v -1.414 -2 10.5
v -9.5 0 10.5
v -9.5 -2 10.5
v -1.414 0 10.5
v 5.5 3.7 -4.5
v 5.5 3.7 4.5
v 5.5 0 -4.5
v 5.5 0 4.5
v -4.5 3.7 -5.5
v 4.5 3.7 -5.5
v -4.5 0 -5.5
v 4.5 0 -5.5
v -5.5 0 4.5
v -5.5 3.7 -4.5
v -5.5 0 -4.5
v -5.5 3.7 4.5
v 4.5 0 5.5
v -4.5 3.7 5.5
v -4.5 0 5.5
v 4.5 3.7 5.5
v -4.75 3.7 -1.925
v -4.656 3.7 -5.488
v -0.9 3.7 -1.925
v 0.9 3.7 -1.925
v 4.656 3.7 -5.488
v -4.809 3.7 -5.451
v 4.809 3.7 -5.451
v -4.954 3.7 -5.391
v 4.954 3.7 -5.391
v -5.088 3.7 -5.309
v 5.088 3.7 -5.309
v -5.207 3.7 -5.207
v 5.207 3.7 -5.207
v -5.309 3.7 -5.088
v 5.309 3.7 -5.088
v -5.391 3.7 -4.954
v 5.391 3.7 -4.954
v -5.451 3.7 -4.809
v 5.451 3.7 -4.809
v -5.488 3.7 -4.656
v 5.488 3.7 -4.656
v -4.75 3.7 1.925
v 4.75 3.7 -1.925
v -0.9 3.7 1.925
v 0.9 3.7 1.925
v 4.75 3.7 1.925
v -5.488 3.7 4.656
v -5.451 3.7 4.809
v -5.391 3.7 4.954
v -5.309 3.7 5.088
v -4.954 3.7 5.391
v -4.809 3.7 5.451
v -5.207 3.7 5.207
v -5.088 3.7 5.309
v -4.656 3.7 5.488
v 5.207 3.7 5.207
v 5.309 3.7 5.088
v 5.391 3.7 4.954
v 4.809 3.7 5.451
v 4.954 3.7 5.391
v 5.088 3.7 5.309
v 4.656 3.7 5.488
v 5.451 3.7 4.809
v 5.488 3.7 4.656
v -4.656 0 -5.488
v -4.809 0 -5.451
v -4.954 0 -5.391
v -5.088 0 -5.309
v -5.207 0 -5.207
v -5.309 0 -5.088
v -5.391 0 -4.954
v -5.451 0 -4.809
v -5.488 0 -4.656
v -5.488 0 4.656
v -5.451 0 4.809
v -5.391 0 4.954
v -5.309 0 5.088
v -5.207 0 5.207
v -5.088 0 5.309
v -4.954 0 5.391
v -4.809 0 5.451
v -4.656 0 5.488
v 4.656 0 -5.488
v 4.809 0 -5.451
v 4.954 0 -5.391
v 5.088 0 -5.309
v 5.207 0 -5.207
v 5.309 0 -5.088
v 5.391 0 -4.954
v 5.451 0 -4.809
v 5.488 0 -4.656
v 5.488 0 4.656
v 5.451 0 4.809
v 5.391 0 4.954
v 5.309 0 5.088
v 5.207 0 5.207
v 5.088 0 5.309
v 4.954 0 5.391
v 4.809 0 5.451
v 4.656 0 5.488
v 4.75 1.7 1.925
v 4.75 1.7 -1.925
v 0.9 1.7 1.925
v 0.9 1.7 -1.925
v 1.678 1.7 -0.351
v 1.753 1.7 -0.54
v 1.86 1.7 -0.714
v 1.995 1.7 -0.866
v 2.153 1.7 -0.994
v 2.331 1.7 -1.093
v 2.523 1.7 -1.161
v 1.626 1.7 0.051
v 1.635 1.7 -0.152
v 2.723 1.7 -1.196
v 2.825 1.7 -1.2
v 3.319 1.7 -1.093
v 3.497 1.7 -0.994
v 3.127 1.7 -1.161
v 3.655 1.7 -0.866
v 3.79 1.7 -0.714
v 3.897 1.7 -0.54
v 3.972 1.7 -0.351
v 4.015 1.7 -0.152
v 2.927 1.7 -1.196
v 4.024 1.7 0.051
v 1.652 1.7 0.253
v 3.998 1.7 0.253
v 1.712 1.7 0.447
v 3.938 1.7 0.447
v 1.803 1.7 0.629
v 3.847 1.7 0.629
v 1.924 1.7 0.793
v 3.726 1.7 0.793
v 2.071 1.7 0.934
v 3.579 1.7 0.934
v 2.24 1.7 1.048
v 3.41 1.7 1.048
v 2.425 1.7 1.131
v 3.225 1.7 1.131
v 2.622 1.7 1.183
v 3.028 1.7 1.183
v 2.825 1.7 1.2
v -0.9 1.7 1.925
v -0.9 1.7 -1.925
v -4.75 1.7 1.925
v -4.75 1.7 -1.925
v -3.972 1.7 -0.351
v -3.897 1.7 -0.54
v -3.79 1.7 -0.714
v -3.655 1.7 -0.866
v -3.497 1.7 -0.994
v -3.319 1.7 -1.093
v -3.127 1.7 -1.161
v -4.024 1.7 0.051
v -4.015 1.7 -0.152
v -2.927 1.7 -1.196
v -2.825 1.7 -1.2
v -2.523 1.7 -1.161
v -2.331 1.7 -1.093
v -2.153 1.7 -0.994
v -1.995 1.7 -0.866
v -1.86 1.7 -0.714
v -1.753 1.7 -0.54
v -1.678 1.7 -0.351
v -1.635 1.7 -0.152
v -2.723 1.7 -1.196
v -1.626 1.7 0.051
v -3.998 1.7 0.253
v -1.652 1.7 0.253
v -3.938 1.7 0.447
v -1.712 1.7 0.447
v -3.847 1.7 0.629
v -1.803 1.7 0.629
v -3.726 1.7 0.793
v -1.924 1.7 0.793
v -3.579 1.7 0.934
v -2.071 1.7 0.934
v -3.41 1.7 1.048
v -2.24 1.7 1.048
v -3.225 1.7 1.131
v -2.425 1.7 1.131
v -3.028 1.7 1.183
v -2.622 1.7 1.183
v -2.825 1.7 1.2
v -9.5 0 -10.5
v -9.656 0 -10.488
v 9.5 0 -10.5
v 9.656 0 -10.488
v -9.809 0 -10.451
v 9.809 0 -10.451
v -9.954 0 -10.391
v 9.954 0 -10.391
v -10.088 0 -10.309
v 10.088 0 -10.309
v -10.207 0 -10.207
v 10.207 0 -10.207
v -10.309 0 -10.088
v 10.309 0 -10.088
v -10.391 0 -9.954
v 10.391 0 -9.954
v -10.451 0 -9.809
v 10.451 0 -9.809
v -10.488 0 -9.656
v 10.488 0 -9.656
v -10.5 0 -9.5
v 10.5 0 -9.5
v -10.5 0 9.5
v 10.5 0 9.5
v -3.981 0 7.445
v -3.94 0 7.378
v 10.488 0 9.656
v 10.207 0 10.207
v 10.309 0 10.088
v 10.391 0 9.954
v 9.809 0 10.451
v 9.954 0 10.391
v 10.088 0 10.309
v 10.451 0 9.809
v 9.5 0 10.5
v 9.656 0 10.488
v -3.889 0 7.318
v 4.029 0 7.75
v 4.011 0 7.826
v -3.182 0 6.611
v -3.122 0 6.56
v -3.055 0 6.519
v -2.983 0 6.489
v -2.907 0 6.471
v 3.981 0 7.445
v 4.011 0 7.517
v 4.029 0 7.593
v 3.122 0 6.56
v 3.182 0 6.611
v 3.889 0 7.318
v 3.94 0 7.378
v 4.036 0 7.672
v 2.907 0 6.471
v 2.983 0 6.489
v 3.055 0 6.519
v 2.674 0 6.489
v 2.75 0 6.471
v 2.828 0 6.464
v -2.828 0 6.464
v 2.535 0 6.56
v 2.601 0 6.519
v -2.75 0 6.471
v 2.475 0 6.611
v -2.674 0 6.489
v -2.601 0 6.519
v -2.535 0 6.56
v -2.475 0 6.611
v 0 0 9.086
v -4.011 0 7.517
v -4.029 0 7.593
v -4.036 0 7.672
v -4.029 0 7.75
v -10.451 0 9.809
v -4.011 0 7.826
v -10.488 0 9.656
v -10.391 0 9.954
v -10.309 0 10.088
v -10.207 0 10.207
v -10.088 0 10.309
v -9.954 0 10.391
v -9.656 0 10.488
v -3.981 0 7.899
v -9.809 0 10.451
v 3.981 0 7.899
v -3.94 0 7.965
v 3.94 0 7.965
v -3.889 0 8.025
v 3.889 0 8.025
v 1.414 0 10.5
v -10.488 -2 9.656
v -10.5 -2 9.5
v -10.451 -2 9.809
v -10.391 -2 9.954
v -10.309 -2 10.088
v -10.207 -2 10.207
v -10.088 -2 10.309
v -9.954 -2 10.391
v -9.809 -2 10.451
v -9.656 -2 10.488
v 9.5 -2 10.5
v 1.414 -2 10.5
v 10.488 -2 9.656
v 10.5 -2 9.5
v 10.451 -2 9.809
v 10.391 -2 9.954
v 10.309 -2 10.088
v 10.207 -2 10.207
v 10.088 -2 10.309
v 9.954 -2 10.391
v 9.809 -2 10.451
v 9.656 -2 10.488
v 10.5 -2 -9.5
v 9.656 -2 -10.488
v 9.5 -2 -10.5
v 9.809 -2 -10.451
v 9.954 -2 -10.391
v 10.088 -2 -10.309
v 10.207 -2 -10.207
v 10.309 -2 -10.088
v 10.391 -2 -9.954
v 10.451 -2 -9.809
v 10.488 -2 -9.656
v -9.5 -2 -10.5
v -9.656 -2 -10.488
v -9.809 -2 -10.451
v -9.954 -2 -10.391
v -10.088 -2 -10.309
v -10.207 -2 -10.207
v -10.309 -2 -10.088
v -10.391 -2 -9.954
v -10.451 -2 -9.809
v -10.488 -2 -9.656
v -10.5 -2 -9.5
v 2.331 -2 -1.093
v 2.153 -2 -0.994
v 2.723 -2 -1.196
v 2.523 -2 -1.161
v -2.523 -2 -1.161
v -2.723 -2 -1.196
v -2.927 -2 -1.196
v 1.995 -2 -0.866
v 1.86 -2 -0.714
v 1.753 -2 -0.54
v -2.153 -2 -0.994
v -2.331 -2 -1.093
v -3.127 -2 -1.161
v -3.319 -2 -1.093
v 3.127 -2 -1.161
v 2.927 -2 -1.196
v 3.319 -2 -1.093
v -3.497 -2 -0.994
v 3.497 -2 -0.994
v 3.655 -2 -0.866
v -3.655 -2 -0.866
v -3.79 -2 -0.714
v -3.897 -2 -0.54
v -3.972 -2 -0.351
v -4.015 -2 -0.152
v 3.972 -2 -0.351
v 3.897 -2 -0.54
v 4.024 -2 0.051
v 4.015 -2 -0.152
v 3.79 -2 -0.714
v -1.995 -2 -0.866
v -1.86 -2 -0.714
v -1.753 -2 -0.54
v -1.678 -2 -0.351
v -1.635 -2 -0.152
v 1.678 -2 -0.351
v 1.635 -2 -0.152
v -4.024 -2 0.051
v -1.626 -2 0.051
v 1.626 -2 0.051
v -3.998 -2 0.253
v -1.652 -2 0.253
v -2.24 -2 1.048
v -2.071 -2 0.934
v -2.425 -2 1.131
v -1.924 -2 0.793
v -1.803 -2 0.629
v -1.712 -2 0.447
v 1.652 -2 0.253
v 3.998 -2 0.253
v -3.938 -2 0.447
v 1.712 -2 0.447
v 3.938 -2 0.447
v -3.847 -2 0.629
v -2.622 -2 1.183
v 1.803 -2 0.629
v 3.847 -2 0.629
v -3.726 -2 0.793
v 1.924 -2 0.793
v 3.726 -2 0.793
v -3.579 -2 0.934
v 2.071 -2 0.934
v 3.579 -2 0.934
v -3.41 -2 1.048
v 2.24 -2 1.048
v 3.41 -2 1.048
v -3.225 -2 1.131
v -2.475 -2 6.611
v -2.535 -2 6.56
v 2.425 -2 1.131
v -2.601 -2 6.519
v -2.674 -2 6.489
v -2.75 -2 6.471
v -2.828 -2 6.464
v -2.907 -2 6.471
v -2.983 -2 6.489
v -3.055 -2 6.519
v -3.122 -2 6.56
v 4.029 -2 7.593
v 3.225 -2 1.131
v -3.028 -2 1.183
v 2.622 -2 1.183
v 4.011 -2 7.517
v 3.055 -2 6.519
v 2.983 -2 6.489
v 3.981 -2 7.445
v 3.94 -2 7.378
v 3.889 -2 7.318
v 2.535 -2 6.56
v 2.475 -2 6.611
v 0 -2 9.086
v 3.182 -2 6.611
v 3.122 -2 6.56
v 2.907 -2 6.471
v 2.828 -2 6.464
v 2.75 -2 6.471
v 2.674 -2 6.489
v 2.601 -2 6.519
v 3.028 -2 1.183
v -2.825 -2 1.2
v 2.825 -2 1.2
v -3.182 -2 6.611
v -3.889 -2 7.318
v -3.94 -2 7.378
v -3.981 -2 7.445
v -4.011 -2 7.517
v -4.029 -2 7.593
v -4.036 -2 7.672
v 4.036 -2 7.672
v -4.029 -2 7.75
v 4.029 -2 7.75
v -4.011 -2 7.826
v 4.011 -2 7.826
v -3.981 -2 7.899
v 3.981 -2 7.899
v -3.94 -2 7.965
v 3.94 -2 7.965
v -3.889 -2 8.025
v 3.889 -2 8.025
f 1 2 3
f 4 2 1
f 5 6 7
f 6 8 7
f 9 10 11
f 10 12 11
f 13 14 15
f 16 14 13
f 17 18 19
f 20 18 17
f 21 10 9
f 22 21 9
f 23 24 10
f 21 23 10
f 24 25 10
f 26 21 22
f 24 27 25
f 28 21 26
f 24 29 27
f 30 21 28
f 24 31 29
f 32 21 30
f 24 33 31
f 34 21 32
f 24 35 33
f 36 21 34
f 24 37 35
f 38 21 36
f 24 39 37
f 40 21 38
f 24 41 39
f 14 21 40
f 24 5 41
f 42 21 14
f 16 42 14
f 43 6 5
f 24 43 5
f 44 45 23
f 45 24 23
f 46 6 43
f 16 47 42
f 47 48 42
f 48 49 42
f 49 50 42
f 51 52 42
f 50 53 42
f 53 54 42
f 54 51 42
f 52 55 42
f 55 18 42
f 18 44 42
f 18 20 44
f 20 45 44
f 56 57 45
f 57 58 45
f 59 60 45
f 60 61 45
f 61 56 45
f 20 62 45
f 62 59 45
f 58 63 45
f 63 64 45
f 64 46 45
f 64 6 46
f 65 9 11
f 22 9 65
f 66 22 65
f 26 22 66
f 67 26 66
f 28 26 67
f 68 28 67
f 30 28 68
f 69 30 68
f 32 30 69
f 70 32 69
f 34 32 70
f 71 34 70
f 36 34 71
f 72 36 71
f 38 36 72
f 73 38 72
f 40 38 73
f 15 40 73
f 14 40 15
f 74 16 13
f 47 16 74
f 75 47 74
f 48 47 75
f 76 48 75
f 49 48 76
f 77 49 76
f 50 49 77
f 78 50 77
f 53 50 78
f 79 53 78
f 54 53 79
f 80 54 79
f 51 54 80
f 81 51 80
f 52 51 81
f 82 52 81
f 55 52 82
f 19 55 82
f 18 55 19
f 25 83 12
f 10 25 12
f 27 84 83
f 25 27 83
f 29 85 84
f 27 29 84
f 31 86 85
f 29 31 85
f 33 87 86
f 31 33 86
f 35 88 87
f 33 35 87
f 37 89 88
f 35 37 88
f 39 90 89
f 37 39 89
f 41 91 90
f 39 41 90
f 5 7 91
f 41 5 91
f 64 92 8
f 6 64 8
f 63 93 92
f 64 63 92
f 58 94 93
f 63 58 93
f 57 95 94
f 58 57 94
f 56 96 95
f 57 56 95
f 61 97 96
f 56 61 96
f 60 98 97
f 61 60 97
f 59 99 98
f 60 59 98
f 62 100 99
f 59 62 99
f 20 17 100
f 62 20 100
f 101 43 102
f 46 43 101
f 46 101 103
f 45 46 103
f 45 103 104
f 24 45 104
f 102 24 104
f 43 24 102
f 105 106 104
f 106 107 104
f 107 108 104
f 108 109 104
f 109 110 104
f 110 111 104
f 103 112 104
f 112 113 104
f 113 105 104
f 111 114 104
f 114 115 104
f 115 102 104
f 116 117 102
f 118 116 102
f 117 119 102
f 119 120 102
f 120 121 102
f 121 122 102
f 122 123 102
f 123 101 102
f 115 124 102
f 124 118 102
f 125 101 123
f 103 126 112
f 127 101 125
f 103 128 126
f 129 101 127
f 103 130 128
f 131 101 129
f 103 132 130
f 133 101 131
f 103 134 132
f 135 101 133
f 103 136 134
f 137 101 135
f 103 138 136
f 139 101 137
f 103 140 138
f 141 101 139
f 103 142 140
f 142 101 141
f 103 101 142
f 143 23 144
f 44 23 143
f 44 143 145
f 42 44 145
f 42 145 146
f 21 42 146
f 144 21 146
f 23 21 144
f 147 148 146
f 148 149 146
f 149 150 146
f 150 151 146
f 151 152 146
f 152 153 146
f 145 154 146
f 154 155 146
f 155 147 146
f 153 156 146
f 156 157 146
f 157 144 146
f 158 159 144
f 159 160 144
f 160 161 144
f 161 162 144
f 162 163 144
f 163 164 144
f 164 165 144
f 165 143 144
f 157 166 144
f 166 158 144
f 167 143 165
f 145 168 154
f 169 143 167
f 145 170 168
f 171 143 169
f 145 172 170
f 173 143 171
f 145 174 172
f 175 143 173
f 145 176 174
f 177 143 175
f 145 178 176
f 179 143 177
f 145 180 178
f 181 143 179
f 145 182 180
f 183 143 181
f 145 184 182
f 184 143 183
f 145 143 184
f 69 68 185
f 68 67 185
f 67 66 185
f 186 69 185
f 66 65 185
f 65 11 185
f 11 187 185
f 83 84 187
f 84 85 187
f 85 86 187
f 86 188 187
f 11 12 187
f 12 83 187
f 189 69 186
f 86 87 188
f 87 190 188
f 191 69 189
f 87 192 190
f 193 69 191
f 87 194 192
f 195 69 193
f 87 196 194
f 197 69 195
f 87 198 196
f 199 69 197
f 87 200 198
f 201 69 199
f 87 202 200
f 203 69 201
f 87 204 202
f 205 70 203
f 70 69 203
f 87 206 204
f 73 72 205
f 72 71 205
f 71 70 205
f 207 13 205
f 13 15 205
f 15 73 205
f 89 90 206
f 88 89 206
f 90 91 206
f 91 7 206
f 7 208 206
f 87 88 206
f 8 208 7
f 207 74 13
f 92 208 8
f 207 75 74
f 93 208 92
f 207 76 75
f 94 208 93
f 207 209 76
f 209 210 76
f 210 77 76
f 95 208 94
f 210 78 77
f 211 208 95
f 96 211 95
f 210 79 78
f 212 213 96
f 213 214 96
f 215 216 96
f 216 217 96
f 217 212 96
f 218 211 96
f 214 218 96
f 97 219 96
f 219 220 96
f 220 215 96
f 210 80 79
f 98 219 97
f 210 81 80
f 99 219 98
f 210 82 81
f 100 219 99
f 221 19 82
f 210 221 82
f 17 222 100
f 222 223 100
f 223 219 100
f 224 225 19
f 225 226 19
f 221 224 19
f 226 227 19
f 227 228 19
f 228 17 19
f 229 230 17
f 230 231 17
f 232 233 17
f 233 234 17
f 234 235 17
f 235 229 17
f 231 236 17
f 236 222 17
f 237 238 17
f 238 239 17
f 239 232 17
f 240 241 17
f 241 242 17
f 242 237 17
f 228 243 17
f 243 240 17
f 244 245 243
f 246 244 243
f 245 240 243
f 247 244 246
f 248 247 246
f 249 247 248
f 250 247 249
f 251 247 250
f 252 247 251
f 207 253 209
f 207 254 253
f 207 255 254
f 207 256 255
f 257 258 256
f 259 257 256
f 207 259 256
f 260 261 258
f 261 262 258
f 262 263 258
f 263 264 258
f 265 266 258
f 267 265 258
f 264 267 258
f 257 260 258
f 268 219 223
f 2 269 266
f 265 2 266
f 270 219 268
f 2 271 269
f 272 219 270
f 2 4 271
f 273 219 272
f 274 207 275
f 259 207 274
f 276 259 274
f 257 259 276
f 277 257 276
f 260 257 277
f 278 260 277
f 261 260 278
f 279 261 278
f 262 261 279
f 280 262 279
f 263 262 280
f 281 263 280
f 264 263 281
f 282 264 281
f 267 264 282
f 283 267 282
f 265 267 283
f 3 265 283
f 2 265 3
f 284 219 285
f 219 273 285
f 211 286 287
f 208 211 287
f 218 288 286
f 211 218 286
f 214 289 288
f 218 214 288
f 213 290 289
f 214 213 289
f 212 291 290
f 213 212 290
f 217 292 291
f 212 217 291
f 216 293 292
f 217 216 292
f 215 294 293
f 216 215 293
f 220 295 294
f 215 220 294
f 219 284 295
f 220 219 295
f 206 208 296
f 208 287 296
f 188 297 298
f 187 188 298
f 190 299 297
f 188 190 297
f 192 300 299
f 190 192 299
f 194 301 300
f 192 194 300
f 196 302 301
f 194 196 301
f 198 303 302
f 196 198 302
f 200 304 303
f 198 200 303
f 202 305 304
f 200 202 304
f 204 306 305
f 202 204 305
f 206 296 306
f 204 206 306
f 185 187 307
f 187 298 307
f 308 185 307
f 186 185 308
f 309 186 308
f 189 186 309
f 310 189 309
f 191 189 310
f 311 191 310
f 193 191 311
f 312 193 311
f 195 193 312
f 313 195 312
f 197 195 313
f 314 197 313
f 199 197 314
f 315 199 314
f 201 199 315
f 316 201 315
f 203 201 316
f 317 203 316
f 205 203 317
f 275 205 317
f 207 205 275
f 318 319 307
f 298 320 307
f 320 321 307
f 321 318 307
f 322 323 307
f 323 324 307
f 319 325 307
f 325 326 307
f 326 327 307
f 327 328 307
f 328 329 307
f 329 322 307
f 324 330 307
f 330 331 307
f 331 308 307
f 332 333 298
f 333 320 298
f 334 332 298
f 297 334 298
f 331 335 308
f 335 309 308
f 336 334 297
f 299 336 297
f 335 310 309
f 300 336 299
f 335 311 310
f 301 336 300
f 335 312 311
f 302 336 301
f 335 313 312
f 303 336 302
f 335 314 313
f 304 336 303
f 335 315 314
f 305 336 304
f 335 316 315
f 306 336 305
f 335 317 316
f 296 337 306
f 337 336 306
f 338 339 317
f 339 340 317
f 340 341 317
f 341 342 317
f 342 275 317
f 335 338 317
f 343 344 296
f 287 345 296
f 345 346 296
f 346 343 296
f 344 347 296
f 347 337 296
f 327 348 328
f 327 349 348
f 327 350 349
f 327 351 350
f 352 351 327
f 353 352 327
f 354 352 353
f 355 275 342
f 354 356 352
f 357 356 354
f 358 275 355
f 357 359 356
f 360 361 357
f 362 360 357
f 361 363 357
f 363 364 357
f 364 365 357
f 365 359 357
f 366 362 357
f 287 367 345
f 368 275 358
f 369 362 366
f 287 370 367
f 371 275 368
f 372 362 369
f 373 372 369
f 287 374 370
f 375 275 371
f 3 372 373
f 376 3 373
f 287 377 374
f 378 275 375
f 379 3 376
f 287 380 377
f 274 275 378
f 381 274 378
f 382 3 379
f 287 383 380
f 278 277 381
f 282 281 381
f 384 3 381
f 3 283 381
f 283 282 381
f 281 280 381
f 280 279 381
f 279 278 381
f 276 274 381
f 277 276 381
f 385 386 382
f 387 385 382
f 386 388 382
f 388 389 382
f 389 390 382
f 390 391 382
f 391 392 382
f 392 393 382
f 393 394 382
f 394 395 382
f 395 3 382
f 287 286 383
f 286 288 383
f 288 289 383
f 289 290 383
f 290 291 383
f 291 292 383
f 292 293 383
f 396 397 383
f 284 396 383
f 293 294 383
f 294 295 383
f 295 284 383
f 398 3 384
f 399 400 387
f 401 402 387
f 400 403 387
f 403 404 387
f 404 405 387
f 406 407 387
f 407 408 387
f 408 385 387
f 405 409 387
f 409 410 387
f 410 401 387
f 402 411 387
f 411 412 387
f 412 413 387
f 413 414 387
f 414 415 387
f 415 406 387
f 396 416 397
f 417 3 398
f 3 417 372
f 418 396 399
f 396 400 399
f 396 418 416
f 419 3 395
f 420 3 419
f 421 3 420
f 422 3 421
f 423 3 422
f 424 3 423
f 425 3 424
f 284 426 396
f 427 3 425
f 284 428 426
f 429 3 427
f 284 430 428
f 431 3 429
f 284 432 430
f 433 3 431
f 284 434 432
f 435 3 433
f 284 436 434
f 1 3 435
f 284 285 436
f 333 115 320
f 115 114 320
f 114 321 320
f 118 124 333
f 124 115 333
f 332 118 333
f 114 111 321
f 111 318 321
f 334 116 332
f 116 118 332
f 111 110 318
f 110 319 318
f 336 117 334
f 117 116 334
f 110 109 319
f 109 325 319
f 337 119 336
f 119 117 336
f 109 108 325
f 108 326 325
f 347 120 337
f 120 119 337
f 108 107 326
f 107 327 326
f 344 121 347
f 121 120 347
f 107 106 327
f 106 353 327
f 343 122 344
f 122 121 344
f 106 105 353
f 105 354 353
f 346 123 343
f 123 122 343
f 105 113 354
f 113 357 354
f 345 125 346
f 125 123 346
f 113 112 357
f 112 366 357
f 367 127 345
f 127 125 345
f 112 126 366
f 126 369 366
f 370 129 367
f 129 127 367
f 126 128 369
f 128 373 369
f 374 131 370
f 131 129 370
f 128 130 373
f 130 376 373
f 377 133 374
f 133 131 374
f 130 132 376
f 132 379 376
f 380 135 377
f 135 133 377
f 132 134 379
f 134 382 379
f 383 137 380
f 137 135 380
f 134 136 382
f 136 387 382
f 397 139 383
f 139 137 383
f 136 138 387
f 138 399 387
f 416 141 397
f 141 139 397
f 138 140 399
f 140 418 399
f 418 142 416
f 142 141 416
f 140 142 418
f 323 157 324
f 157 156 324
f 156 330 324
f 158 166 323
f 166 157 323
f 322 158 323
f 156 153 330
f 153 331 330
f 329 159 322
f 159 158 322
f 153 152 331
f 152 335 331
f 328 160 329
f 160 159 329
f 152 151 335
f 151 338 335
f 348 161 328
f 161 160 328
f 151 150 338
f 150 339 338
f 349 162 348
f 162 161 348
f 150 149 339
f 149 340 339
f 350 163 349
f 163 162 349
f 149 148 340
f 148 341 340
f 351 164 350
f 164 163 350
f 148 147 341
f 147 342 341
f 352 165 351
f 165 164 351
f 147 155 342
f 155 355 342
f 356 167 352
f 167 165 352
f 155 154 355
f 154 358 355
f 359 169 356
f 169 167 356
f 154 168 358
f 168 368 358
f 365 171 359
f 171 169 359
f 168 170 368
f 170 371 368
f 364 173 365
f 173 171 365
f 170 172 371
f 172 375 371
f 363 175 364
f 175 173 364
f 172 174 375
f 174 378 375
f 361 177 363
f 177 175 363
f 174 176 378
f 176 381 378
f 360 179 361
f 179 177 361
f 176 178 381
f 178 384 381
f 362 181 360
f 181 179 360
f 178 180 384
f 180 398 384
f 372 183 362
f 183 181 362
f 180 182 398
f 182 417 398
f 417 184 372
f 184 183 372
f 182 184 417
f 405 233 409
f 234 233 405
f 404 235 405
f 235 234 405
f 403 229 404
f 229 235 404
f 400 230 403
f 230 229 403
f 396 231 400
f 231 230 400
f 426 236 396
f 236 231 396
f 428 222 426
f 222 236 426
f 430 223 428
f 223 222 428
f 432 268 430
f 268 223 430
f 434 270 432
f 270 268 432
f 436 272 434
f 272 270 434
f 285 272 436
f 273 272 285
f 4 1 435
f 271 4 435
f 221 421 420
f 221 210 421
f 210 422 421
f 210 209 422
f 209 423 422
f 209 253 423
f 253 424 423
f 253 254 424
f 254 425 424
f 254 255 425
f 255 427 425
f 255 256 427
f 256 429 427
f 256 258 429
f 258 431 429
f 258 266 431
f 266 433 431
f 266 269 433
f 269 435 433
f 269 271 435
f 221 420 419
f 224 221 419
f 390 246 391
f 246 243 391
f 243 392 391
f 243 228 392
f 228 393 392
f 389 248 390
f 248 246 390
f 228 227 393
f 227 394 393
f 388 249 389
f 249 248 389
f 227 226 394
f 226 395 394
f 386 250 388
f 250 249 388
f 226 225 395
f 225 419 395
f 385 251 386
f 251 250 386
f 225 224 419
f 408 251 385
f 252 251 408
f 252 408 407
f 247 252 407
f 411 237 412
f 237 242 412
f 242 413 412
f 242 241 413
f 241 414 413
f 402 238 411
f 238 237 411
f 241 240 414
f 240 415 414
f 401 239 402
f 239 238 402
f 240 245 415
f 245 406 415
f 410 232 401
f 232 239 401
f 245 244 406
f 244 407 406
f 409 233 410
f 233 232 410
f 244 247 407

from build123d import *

# Parameters (mm, degrees)
SKETCH1_W           = 11
SKETCH1_H           = 11
BOSS_EXTRUDE1_DEPTH = 3.7
FILLET1_R           = 1
SKETCH2_W           = 3.85
SKETCH2_H           = 3.85
CUT_EXTRUDE1_DEPTH  = 2
SKETCH4_R           = 2.2
BOSS_EXTRUDE2_DEPTH = 2
BOSS_EXTRUDE3_DEPTH = 2
SKETCH3_R           = 1.2
CUT_EXTRUDE2_DEPTH  = 16.90565937
CUT_EXTRUDE3_DEPTH  = 16.303267625


with BuildPart() as part:
    # Sketch1 → Boss-Extrude1 (new body)
    with BuildSketch(Plane(origin=(0, 0, 0), x_dir=(1, 0, 0), z_dir=(0, 1, 0))):
        Rectangle(SKETCH1_W, SKETCH1_H)
    extrude(amount=BOSS_EXTRUDE1_DEPTH)

    # Fillet1
    fillet1_edges = [part.edges().sort_by_distance(p)[0] for p in [
        (5.5, 1.85, 5.5),
        (-5.5, 1.85, 5.5),
        (-5.5, 1.85, -5.5),
        (5.5, 1.85, -5.5),
    ]]
    fillet(fillet1_edges, radius=FILLET1_R)

    # Sketch2 → Cut-Extrude1 (cut)
    with BuildSketch(Plane(origin=(0, 3.7, 0), x_dir=(1, 0, 0), z_dir=(0, 1, 0))):
        with Locations((-2.825, 0)):
            Rectangle(SKETCH2_W, SKETCH2_H)
        with Locations((2.825, 0)):
            Rectangle(SKETCH2_W, SKETCH2_H)
    extrude(amount=-CUT_EXTRUDE1_DEPTH, mode=Mode.SUBTRACT)

    # Sketch4 → Boss-Extrude2 (add)
    with BuildSketch(Plane(origin=(0, 0, 0), x_dir=(-1, 0, 0), z_dir=(0, -1, 0))):
        with Locations(Location((2.825, 0, 0), (0, 0, 90))):
            Circle(SKETCH4_R)
        with Locations(Location((-2.825, 0, 0), (0, 0, 90))):
            Circle(SKETCH4_R)
    extrude(amount=BOSS_EXTRUDE2_DEPTH)

    # Sketch5 → Boss-Extrude3 (add)
    with BuildSketch(Plane(origin=(0, -2, 0), x_dir=(-1, 0, 0), z_dir=(0, -1, 0))):
        with BuildLine():
            Line((9.5, 10.5), (-9.5, 10.5))
            ThreePointArc((-9.5, 10.5), (-10.207106781, 10.207106781), (-10.5, 9.5))
            Line((-10.5, 9.5), (-10.5, -9.5))
            ThreePointArc((-10.5, -9.5), (-10.207106781, -10.207106781), (-9.5, -10.5))
            Line((-9.5, -10.5), (9.5, -10.5))
            ThreePointArc((9.5, -10.5), (10.207106781, -10.207106781), (10.5, -9.5))
            Line((10.5, -9.5), (10.5, 9.5))
            ThreePointArc((10.5, 9.5), (10.207106781, 10.207106781), (9.5, 10.5))
        make_face()
    extrude(amount=-BOSS_EXTRUDE3_DEPTH)

    # Sketch3 → Cut-Extrude2 (cut, through all)
    with BuildSketch(Plane(origin=(0, 3.7, 0), x_dir=(1, 0, 0), z_dir=(0, 1, 0))):
        with Locations(Location((-2.825, 0, 0), (0, 0, 270))):
            Circle(SKETCH3_R)
        with Locations(Location((2.825, 0, 0), (0, 0, 270))):
            Circle(SKETCH3_R)
    extrude(amount=-CUT_EXTRUDE2_DEPTH, mode=Mode.SUBTRACT)

    # Sketch7 → Cut-Extrude3 (cut, through all)
    with BuildSketch(Plane(origin=(0, 0, 0), x_dir=(1, 0, 0), z_dir=(0, 1, 0))):
        with BuildLine():
            Line((0, -9.085786438), (1.414213562, -10.5))
            Line((1.414213562, -10.5), (3.889087297, -8.025126266))
            ThreePointArc((3.889087297, -8.025126266), (4.035533906, -7.671572875), (3.889087297, -7.318019485))
            Line((3.889087297, -7.318019485), (3.181980515, -6.610912703))
            ThreePointArc((3.181980515, -6.610912703), (2.828427125, -6.464466094), (2.474873734, -6.610912703))
            Line((2.474873734, -6.610912703), (0, -9.085786438))
        make_face()
        with BuildLine():
            Line((-3.889087297, -8.025126266), (-1.414213562, -10.5))
            Line((-1.414213562, -10.5), (0, -9.085786438))
            Line((0, -9.085786438), (-2.474873734, -6.610912703))
            ThreePointArc((-2.474873734, -6.610912703), (-2.828427125, -6.464466094), (-3.181980515, -6.610912703))
            Line((-3.181980515, -6.610912703), (-3.889087297, -7.318019485))
            ThreePointArc((-3.889087297, -7.318019485), (-4.035533906, -7.671572875), (-3.889087297, -8.025126266))
        make_face()
        Polygon((-1.414213562, -10.5), (1.414213562, -10.5), (0, -9.085786438), align=None)
    extrude(amount=-CUT_EXTRUDE3_DEPTH, mode=Mode.SUBTRACT)


solid = part.part
